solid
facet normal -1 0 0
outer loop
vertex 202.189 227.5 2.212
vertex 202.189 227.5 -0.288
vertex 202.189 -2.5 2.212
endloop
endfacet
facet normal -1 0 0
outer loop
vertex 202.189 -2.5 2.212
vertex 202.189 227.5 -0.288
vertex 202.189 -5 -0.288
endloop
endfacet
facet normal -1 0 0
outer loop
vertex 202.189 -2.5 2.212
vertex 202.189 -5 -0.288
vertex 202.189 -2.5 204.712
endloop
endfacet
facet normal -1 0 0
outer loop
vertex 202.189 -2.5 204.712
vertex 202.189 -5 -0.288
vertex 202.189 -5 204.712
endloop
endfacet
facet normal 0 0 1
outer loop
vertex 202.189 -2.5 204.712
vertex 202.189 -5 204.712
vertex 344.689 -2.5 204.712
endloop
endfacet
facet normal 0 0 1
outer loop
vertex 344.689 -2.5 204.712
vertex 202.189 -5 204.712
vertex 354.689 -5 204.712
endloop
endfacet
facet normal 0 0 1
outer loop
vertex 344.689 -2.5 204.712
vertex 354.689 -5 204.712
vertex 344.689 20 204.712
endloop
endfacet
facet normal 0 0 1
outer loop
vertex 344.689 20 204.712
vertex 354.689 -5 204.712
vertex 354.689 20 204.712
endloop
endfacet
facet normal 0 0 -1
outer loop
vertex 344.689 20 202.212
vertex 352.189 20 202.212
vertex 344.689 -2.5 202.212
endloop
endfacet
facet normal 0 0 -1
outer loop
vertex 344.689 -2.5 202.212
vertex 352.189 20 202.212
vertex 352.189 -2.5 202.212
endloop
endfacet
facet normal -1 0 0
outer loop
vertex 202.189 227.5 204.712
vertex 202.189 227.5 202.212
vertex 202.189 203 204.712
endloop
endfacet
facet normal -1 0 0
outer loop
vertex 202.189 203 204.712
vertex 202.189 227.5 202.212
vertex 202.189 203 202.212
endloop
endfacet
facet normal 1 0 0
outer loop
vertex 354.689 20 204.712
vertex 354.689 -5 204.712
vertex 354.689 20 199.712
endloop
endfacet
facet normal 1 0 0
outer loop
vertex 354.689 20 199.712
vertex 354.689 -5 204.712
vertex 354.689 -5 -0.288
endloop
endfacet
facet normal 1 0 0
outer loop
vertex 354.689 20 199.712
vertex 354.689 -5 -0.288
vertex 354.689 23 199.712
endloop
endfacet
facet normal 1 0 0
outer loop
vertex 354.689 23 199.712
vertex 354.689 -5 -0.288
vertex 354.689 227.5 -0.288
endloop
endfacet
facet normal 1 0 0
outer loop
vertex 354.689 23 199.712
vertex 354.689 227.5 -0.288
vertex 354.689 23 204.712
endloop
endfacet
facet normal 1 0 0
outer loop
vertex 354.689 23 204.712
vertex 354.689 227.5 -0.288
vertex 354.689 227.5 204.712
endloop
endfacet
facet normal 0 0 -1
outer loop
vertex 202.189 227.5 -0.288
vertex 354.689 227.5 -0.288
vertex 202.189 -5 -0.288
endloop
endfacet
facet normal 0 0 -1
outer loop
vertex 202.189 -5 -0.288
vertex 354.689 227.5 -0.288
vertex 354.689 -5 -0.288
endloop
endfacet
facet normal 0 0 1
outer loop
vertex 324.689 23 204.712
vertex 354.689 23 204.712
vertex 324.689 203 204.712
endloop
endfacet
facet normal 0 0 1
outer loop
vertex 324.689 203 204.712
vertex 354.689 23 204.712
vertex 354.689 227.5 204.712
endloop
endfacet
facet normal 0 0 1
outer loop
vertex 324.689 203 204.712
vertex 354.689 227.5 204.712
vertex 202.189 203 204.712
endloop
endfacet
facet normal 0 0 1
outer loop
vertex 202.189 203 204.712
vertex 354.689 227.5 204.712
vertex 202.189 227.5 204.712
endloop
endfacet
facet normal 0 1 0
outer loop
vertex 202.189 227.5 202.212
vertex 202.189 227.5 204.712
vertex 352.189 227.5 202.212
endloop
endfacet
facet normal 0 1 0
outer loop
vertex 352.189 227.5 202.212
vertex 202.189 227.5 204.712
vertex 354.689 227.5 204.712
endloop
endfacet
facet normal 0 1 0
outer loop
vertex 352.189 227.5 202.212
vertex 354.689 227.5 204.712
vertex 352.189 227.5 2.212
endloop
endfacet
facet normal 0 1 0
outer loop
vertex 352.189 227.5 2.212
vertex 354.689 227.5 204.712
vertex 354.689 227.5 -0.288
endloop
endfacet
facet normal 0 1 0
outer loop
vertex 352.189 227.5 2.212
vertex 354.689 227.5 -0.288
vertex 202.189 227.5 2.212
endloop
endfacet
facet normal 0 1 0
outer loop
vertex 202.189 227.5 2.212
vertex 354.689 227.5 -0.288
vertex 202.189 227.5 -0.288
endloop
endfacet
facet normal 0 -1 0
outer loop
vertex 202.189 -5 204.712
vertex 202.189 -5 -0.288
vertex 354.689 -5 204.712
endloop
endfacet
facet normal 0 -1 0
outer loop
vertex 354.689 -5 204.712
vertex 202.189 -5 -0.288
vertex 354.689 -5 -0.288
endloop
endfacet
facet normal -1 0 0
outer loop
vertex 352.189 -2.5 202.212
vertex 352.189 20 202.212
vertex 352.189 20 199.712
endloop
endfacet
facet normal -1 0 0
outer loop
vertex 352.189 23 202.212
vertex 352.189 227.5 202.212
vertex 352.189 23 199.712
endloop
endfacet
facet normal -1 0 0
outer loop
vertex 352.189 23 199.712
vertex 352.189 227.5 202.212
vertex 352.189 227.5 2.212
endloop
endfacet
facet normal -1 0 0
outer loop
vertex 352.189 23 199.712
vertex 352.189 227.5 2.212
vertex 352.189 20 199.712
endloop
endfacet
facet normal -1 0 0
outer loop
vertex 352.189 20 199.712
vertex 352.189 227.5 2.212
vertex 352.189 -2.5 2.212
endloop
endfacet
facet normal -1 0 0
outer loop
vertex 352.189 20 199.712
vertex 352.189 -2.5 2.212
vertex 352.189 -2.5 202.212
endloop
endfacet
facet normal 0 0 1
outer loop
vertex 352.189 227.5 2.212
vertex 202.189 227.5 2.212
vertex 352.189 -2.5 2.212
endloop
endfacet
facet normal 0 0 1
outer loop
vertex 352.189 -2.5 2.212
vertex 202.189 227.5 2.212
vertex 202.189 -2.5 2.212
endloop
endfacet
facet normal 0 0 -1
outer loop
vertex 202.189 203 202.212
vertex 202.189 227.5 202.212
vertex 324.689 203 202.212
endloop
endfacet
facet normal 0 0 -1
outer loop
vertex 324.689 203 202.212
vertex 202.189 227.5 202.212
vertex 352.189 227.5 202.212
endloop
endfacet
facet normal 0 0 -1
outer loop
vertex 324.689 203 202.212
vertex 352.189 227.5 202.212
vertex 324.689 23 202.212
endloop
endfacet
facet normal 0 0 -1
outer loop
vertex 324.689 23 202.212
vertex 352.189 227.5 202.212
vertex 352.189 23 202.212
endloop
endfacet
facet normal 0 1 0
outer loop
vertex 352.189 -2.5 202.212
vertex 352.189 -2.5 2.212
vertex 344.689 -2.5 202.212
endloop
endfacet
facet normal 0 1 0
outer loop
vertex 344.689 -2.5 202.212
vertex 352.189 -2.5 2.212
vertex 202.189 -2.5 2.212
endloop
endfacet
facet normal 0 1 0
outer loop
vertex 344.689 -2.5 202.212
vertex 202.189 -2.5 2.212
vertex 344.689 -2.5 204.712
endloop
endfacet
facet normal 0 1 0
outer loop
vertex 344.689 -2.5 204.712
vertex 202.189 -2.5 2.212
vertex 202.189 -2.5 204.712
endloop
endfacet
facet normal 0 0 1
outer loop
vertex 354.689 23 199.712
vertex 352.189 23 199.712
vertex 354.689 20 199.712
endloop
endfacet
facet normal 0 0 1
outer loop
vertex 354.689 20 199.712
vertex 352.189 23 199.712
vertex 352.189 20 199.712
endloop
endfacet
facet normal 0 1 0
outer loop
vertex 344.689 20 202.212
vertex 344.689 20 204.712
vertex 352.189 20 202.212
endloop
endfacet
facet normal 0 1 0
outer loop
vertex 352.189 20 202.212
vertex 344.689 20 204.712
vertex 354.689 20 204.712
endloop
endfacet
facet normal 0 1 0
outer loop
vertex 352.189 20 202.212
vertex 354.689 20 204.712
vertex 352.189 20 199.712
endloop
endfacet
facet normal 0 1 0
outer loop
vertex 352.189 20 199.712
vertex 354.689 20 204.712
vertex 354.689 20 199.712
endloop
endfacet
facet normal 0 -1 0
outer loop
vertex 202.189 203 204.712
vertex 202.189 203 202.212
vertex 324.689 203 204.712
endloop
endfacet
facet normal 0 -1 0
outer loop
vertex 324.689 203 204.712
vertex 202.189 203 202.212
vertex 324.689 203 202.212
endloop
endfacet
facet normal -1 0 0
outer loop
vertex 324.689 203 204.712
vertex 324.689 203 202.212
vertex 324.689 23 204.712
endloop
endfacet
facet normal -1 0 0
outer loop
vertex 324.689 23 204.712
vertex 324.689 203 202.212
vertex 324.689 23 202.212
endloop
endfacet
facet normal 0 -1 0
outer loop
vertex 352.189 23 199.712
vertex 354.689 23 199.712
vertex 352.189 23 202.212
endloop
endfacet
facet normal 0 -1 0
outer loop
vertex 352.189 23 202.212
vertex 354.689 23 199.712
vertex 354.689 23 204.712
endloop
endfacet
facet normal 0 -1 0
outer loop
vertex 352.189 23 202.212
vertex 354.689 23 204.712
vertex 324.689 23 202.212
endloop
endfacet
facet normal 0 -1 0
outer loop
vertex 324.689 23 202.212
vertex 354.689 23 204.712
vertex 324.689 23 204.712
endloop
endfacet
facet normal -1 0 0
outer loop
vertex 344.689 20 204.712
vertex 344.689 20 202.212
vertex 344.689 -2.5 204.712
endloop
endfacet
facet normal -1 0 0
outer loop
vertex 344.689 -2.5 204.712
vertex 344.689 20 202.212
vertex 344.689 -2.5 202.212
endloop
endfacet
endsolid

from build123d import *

# Parameters (mm, degrees)
SKETCH_8_W          = 150
SKETCH_8_H          = 200
EXTRUDE_3_DEPTH     = 230
SHELL_2_T           = 2.5
CUT_EXTRUDE_3_DEPTH = 5
SKETCH_11_W         = 142.5
SKETCH_11_H         = 22.5
CUT_EXTRUDE_4_DEPTH = 5


with BuildPart() as part:
    # 草图8 → 凸台-拉伸3 (new body)
    with BuildSketch(Plane(origin=(0, -2.5, 0), x_dir=(-1, 0, 0), z_dir=(0, -1, 0))):
        with Locations((-277.189390083, -102.212193571)):
            Rectangle(SKETCH_8_W, SKETCH_8_H)
    extrude(amount=-EXTRUDE_3_DEPTH)

    # 抽壳2
    shell_2_openings = [part.faces().sort_by_distance(p)[0] for p in [
        (202.189390083, 112.5, 102.212193571),
        (277.189390083, 227.5, 102.212193571),
    ]]
    offset(amount=SHELL_2_T, openings=shell_2_openings, kind=Kind.INTERSECTION)

    # 草图10 → 切除-拉伸3 (cut)
    with BuildSketch(Plane.XY.offset(204.712193571)):
        Polygon((354.689390083, 23), (324.689390083, 23), (324.689390083, 203), (202.189390083, 203), (202.189390083, 23), (202.189390083, 20), (354.689390083, 20), align=None)
    extrude(amount=-CUT_EXTRUDE_3_DEPTH, mode=Mode.SUBTRACT)

    # 草图11 → 切除-拉伸4 (cut)
    with BuildSketch(Plane.XY.offset(204.712193571)):
        with Locations((273.439390083, 8.75)):
            Rectangle(SKETCH_11_W, SKETCH_11_H)
    extrude(amount=-CUT_EXTRUDE_4_DEPTH, mode=Mode.SUBTRACT)


solid = part.part
